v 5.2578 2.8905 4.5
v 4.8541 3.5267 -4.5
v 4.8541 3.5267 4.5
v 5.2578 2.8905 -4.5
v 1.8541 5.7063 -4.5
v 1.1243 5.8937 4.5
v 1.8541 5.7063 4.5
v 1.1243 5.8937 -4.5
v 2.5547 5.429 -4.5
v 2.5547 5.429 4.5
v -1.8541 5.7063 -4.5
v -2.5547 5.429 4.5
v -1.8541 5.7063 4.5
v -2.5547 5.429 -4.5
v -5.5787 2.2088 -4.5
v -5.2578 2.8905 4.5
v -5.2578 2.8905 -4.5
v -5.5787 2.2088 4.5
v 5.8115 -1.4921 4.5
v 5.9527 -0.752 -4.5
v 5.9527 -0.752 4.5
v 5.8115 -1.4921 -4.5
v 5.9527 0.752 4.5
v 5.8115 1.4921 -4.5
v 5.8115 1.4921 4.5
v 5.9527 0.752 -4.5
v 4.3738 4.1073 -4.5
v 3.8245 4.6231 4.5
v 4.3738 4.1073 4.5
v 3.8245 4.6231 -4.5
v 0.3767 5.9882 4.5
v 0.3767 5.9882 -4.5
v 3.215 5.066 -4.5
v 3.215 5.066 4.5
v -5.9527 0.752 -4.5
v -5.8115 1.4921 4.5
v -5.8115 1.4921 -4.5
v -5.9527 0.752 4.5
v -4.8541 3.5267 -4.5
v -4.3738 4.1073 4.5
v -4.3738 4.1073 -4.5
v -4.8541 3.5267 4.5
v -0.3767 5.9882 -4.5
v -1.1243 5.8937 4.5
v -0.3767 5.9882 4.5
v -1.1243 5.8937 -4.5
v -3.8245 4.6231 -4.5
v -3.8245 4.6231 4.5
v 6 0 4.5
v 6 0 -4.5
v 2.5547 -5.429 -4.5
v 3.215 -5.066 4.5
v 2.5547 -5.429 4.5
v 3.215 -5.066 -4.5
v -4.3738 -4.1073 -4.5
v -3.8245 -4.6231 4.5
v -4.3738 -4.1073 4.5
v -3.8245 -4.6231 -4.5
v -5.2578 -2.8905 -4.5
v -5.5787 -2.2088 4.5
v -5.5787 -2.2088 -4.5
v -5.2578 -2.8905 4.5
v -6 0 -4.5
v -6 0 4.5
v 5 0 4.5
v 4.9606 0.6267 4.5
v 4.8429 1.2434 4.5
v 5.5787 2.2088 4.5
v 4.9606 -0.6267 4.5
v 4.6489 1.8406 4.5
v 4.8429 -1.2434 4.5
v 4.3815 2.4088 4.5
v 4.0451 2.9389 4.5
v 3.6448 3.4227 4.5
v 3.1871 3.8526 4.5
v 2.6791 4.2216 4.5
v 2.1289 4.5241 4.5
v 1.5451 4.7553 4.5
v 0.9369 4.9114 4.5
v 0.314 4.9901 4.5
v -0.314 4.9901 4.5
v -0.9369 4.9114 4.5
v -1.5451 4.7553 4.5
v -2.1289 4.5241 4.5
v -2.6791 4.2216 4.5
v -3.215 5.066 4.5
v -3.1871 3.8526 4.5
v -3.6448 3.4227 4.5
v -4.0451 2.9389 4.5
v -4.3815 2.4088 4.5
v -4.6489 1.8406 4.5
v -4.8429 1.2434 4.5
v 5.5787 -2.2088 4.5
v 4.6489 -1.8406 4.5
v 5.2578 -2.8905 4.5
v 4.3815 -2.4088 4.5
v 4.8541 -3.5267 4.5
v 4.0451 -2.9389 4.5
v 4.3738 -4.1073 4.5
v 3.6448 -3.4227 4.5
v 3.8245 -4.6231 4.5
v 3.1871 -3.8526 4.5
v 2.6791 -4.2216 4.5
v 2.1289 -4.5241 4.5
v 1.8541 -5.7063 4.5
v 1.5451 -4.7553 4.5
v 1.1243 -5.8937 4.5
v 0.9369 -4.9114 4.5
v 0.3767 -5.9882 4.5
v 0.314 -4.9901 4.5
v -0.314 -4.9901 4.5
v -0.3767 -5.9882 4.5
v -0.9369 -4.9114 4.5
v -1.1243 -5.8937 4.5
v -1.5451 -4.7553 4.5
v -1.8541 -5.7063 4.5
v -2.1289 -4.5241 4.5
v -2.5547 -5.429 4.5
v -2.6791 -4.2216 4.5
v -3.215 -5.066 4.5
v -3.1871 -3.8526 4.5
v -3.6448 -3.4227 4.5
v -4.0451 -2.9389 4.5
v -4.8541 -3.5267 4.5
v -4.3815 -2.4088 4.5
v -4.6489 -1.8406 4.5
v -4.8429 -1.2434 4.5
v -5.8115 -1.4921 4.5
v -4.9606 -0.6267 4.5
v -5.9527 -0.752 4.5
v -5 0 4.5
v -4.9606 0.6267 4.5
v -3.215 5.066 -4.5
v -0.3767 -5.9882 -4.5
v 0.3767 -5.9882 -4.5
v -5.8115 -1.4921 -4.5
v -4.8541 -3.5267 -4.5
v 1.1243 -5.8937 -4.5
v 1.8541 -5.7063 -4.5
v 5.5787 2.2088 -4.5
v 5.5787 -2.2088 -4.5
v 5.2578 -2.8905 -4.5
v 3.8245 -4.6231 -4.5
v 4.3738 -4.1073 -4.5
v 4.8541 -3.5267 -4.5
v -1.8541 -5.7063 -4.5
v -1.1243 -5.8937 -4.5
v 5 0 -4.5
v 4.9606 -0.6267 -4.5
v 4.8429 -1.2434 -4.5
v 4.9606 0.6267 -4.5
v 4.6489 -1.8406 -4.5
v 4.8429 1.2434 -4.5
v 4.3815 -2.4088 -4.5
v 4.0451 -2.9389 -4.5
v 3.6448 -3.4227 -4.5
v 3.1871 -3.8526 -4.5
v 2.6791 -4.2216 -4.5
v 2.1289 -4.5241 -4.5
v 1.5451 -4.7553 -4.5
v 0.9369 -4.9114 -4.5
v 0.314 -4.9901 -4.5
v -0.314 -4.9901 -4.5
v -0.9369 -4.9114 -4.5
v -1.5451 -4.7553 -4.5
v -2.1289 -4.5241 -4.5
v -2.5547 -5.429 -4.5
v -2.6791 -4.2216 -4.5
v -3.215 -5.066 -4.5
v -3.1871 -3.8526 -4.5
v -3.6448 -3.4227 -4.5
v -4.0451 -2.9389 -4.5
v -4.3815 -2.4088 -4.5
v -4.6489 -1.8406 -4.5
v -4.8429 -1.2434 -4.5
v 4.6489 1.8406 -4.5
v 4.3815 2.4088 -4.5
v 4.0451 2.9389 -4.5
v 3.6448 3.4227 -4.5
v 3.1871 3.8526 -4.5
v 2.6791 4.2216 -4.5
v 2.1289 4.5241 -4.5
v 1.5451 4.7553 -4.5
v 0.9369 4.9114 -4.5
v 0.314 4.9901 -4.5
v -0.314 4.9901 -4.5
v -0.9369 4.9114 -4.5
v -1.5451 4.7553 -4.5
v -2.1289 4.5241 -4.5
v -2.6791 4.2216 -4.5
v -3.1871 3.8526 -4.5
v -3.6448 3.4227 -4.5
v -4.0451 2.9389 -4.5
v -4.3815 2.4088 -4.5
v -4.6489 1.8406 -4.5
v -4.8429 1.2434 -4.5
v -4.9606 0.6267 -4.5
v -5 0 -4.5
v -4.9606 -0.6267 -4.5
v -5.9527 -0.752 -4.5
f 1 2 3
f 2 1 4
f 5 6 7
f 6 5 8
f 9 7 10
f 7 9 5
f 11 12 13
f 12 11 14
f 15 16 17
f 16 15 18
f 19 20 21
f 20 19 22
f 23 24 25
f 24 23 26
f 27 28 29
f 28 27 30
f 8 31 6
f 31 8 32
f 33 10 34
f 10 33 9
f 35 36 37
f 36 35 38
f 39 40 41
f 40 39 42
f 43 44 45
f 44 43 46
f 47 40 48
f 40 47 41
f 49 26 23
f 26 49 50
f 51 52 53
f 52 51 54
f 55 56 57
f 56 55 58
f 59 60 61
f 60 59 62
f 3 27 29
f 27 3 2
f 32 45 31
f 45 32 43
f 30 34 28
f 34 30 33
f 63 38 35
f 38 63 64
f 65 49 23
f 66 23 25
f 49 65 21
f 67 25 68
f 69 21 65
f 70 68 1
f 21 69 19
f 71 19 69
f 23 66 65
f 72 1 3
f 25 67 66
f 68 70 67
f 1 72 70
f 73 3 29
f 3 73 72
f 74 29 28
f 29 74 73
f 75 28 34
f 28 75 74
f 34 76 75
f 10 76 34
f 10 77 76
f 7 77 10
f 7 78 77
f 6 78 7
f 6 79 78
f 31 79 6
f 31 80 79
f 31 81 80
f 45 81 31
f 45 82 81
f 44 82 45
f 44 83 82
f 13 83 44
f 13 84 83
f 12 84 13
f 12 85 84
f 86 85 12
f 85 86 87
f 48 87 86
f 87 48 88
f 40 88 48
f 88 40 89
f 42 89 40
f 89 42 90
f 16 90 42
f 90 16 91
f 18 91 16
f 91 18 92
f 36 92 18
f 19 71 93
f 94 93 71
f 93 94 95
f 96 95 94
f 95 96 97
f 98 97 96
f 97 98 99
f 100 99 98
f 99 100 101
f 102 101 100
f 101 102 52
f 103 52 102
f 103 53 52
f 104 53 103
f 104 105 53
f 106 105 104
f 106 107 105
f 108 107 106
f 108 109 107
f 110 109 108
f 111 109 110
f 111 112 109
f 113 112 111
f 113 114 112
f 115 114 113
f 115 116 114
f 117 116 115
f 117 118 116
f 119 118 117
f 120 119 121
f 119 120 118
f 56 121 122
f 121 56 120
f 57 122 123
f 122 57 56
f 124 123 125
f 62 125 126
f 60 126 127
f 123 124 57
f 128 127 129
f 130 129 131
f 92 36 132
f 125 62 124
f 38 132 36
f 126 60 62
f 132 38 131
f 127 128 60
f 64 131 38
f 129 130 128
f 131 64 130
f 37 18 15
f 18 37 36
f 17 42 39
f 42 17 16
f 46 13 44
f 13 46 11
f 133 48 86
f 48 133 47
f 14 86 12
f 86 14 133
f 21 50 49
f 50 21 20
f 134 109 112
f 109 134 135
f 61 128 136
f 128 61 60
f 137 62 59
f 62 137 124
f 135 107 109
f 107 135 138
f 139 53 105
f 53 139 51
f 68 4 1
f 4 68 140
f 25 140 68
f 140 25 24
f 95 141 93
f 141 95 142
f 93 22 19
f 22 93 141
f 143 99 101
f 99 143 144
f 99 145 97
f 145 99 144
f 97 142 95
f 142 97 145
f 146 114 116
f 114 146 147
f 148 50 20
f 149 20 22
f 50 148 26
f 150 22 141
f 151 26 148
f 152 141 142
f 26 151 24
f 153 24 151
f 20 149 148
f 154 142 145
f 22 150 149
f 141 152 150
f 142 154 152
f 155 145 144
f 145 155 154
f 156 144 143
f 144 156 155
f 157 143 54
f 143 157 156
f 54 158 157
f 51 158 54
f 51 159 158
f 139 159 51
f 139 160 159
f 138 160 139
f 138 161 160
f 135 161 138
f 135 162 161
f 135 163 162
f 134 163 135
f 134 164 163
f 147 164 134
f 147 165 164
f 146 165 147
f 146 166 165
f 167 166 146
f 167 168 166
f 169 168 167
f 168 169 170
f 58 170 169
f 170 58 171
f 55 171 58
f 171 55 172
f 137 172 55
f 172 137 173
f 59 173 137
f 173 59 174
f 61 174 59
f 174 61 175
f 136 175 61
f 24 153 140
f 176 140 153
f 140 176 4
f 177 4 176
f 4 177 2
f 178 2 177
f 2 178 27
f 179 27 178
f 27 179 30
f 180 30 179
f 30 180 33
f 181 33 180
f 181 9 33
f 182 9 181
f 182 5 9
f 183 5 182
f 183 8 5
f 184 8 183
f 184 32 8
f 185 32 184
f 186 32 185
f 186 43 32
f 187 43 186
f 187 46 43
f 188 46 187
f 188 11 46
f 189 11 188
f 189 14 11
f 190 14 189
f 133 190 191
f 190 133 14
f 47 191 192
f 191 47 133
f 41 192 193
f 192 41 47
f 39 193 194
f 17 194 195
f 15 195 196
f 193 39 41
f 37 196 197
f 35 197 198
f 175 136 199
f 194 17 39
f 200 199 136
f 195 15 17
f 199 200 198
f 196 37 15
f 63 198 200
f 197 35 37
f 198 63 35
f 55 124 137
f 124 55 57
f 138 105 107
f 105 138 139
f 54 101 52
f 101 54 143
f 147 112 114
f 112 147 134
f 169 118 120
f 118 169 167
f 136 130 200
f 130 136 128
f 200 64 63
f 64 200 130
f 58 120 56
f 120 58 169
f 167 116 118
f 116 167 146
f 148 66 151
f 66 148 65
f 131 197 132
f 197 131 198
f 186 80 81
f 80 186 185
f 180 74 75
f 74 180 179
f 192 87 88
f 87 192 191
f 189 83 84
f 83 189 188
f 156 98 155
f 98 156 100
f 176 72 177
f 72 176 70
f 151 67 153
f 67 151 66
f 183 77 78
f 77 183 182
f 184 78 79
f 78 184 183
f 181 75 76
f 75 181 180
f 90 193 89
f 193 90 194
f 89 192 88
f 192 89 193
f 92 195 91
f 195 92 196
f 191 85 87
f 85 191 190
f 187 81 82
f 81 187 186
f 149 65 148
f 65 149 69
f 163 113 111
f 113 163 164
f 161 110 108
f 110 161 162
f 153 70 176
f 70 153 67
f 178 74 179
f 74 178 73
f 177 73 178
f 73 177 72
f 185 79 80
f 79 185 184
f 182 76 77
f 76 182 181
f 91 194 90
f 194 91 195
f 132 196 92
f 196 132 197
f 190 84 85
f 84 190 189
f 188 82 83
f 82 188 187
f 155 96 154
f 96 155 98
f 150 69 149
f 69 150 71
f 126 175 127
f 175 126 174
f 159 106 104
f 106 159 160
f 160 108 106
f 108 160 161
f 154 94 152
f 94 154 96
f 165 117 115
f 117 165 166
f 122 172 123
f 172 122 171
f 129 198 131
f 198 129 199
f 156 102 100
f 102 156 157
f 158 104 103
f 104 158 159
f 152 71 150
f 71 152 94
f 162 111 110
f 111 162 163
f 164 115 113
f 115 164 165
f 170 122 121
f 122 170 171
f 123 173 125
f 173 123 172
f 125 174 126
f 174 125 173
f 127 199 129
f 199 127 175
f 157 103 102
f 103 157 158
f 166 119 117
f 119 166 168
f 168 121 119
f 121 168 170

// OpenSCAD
$fn = 50;


difference() {
	union() {
		translate(v = [0, 0, -4.5000000000]) {
			cylinder(h = 9, r = 6.0000000000);
		}
	}
	union() {
		translate(v = [0, 0, -100.0000000000]) {
			cylinder(h = 200, r = 5);
		}
	}
}
